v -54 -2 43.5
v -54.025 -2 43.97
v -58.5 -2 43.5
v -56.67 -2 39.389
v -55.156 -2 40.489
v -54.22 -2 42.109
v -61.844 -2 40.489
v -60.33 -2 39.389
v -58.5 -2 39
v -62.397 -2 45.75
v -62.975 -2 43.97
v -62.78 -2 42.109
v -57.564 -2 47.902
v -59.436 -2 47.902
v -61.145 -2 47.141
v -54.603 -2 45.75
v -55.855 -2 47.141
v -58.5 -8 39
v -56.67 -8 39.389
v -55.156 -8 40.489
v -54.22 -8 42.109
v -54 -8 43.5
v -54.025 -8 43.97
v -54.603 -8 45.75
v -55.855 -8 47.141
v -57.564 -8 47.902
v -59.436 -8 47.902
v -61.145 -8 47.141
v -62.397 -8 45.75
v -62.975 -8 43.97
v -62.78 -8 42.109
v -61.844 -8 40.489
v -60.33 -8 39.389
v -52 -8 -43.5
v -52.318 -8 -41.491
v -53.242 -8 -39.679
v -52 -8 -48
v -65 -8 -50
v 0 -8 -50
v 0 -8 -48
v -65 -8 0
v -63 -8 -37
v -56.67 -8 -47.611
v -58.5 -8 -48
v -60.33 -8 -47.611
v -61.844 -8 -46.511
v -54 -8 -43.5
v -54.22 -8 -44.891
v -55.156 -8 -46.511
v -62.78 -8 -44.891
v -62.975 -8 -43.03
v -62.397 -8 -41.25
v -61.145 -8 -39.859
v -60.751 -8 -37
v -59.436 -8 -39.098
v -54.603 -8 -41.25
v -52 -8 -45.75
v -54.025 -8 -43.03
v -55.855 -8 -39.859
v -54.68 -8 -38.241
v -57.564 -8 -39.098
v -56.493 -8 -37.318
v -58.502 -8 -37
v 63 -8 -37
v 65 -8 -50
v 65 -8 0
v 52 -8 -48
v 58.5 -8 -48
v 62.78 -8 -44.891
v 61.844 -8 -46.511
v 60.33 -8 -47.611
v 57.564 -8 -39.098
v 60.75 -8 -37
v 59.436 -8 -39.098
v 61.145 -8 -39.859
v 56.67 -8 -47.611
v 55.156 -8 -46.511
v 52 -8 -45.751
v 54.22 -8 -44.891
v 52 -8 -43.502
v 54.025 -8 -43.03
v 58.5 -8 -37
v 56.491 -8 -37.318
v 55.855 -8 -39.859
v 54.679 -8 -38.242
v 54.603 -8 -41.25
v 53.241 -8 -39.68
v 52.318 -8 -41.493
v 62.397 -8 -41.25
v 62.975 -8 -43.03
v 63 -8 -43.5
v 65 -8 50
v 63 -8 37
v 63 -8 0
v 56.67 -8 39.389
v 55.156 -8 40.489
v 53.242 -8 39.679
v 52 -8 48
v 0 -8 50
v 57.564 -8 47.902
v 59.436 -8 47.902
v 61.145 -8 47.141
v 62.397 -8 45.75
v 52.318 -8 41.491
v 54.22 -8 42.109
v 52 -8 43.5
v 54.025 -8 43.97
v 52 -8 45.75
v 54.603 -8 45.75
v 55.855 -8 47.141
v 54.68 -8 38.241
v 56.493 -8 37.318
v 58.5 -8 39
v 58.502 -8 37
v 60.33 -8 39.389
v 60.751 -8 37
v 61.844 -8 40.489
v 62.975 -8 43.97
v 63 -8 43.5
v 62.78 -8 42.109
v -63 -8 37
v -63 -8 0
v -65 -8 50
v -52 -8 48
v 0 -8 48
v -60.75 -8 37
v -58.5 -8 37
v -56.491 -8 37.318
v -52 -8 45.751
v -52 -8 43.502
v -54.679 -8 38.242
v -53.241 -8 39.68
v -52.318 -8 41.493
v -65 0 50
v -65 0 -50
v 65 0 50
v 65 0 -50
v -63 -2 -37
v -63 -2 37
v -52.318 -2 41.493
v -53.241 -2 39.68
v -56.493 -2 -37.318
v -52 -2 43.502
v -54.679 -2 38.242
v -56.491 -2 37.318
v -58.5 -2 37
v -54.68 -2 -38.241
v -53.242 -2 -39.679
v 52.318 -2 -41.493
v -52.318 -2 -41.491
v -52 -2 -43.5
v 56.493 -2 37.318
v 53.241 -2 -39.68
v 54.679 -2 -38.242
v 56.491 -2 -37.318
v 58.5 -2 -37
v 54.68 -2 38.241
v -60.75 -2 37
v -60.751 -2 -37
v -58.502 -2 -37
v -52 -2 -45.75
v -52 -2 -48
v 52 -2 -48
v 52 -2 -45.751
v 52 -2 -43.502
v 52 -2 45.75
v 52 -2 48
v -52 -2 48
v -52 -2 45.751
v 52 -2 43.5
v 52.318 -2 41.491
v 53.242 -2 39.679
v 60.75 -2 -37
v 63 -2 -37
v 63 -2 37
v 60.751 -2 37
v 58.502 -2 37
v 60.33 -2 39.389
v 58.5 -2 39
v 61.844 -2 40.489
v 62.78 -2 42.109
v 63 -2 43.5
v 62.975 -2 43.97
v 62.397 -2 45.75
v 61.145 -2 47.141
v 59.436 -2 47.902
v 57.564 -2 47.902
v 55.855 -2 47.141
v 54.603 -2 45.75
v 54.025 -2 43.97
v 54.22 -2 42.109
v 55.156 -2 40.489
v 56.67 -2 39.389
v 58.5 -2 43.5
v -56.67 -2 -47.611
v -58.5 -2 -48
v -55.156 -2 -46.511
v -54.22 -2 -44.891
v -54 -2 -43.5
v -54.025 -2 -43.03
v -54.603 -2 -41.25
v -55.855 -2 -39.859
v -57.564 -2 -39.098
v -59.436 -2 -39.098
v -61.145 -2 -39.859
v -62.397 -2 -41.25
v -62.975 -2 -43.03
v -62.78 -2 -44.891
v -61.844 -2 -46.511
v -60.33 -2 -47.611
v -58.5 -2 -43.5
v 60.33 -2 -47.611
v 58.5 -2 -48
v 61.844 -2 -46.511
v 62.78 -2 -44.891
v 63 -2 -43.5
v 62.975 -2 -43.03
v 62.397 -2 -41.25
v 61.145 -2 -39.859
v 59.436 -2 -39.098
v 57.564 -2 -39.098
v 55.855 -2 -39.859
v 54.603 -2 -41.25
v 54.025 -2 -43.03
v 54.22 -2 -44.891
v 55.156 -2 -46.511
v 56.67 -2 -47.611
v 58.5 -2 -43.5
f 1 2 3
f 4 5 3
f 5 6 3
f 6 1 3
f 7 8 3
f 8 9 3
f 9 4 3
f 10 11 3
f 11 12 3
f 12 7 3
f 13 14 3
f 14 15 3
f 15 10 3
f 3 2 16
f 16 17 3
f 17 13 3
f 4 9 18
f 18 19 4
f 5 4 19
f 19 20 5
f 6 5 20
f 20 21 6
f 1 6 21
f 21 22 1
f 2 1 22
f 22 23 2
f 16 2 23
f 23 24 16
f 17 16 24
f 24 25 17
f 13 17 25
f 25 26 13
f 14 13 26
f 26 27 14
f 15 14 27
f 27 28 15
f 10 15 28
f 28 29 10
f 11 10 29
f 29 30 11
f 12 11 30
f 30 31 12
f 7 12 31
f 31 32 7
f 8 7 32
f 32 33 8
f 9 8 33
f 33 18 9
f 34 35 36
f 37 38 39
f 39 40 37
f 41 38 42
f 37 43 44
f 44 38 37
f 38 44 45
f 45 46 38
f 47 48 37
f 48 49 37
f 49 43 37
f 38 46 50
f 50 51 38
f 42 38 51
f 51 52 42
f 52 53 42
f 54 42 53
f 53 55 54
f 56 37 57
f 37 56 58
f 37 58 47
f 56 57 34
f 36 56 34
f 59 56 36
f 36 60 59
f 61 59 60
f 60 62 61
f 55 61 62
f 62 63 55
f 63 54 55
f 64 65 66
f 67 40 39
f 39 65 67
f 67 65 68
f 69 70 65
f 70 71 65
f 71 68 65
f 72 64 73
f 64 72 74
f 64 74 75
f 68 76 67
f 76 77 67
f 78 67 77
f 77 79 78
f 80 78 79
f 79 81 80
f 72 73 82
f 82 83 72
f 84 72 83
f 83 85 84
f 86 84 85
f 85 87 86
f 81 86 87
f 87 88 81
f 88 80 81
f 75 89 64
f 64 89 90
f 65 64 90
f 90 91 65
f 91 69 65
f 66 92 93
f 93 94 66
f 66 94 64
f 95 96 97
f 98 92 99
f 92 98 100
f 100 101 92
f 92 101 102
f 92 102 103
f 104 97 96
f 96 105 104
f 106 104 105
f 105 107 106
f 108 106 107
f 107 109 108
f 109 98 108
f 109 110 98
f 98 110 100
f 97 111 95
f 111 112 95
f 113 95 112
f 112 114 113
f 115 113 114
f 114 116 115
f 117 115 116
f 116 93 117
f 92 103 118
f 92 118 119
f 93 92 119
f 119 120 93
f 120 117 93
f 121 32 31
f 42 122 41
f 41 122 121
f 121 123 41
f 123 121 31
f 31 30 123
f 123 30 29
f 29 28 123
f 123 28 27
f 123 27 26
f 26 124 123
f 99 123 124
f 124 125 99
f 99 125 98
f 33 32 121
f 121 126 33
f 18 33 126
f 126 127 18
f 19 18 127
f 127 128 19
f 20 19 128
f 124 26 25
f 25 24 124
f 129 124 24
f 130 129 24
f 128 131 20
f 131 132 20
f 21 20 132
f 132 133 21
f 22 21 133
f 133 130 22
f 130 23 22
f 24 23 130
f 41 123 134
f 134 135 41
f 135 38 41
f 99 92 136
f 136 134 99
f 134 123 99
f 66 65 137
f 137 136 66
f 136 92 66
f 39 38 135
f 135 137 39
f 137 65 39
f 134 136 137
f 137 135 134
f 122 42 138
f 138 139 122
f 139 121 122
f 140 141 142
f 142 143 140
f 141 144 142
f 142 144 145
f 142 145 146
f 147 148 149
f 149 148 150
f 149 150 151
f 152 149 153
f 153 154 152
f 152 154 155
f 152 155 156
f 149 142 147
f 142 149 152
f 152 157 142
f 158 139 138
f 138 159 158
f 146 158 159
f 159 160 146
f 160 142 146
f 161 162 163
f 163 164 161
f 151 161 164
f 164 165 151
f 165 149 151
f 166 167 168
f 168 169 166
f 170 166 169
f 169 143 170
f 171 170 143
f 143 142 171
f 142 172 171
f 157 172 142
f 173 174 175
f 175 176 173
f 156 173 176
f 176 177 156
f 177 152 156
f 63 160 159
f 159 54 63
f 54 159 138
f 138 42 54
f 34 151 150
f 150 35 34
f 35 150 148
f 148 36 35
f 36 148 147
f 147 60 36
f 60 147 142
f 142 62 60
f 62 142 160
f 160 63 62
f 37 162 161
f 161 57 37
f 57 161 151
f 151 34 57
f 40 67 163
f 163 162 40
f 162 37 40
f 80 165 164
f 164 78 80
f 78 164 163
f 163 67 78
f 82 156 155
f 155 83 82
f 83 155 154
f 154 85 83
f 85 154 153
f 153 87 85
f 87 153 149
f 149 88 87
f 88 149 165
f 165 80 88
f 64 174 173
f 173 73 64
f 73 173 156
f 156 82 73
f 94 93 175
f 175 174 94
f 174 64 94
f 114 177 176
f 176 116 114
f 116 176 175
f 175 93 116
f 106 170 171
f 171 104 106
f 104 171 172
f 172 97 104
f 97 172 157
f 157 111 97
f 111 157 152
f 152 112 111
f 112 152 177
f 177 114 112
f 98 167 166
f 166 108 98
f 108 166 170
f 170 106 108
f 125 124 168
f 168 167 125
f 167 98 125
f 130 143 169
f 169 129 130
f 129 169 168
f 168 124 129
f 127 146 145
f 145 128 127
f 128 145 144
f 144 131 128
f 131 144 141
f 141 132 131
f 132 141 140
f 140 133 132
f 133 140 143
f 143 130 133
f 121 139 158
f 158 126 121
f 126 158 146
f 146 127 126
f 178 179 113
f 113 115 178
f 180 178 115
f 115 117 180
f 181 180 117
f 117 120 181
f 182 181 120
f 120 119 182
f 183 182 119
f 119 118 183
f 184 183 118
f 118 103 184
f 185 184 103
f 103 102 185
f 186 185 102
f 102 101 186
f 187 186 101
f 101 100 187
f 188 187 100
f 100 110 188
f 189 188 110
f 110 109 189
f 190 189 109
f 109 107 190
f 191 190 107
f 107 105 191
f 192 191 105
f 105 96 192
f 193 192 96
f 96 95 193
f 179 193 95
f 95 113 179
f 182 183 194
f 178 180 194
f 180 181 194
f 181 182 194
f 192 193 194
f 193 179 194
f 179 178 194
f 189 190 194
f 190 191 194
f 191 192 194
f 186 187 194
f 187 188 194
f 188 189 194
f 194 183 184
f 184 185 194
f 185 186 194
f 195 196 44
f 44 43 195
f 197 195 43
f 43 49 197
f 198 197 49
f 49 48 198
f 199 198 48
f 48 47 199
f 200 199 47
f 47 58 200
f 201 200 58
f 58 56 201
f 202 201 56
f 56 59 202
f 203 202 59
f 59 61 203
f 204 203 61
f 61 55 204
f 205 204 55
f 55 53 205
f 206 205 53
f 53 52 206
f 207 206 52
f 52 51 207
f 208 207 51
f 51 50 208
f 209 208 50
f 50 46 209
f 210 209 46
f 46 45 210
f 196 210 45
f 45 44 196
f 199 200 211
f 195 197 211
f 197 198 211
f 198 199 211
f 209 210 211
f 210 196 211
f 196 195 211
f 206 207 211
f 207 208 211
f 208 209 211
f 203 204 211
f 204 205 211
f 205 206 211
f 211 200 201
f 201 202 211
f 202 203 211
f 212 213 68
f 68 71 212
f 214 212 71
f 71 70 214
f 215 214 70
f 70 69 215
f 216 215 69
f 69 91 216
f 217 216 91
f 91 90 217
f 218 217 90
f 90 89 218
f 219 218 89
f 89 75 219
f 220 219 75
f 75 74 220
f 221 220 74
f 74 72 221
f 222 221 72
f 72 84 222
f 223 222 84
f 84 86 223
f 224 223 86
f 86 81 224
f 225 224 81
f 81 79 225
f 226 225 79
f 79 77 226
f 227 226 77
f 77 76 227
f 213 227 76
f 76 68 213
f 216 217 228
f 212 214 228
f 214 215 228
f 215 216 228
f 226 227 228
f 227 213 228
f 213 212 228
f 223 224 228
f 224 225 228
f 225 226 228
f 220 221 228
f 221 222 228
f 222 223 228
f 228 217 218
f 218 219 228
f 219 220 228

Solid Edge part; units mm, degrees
sketch "Sketch1" plane through (0, 0, 0) normal (0, -1, 0) x (1, 0, 0)
  line L0 (-65, 50) -> (65, 50)
  line L1 (65, 50) -> (65, -50)
  line L2 (65, -50) -> (-65, -50)
  line L3 (-65, -50) -> (-65, 50)
extrude "Protrusion1" add sketch "Sketch1" along normal blind 2
sketch "Sketch2" plane through (0, -2, 0) normal (0, -1, 0) x (1, 0, 0)
  spline S0 degree 2 poles (-63, 37) (-60.7502, 37.0003) (-58.5004, 37) knots 0 0 0 1 1 1
  arc A0 (-52, 43.5018) -> (-58.5004, 37) centre (-58.5, 43.5) cw
  spline S1 degree 2 poles (-52, 48) (-52.0004, 45.7502) (-52, 43.5018) knots 0 0 0 1 1 1
  line L0 (52, 48) -> (-52, 48)
  spline S2 degree 2 poles (52, 48) (52.0003, 45.7502) (52, 43.5004) knots 0 0 0 1 1 1
  arc A1 (58.5018, 37) -> (52, 43.5004) centre (58.5, 43.5) cw
  spline S3 degree 2 poles (63, 37) (60.7502, 37.0004) (58.5018, 37) knots 0 0 0 1 1 1
  line L1 (63, -37) -> (63, 37)
  spline S4 degree 2 poles (63, -37) (60.7502, -37.0003) (58.5004, -37) knots 0 0 0 1 1 1
  arc A2 (52, -43.5018) -> (58.5004, -37) centre (58.5, -43.5) cw
  spline S5 degree 2 poles (52, -48) (52.0004, -45.7502) (52, -43.5018) knots 0 0 0 1 1 1
  line L2 (-52, -48) -> (52, -48)
  spline S6 degree 2 poles (-52, -48) (-52.0003, -45.7502) (-52, -43.5004) knots 0 0 0 1 1 1
  arc A3 (-58.5018, -37) -> (-52, -43.5004) centre (-58.5, -43.5) cw
  spline S7 degree 2 poles (-63, -37) (-60.7502, -37.0004) (-58.5018, -37) knots 0 0 0 1 1 1
  line L3 (-63, 37) -> (-63, -37)
  line L4 (-65, 50) -> (65, 50)
  line L5 (65, 50) -> (65, -50)
  line L6 (65, -50) -> (-65, -50)
  line L7 (-65, -50) -> (-65, 50)
extrude "ExtrudedProtrusion_4" add sketch "Sketch2" along normal blind 6
sketch "Sketch3" plane through (0, -8, 0) normal (0, -1, 0) x (1, 0, 0)
  circle A0 centre (-58.5, 43.5) radius 4.5
  circle A1 centre (58.5, 43.5) radius 4.5
  circle A2 centre (-58.5, -43.5) radius 4.5
  circle A3 centre (58.5, -43.5) radius 4.5
extrude "ExtrudedCutout_2" cut sketch "Sketch3" against normal blind 6 and the other way blind 48.2496
